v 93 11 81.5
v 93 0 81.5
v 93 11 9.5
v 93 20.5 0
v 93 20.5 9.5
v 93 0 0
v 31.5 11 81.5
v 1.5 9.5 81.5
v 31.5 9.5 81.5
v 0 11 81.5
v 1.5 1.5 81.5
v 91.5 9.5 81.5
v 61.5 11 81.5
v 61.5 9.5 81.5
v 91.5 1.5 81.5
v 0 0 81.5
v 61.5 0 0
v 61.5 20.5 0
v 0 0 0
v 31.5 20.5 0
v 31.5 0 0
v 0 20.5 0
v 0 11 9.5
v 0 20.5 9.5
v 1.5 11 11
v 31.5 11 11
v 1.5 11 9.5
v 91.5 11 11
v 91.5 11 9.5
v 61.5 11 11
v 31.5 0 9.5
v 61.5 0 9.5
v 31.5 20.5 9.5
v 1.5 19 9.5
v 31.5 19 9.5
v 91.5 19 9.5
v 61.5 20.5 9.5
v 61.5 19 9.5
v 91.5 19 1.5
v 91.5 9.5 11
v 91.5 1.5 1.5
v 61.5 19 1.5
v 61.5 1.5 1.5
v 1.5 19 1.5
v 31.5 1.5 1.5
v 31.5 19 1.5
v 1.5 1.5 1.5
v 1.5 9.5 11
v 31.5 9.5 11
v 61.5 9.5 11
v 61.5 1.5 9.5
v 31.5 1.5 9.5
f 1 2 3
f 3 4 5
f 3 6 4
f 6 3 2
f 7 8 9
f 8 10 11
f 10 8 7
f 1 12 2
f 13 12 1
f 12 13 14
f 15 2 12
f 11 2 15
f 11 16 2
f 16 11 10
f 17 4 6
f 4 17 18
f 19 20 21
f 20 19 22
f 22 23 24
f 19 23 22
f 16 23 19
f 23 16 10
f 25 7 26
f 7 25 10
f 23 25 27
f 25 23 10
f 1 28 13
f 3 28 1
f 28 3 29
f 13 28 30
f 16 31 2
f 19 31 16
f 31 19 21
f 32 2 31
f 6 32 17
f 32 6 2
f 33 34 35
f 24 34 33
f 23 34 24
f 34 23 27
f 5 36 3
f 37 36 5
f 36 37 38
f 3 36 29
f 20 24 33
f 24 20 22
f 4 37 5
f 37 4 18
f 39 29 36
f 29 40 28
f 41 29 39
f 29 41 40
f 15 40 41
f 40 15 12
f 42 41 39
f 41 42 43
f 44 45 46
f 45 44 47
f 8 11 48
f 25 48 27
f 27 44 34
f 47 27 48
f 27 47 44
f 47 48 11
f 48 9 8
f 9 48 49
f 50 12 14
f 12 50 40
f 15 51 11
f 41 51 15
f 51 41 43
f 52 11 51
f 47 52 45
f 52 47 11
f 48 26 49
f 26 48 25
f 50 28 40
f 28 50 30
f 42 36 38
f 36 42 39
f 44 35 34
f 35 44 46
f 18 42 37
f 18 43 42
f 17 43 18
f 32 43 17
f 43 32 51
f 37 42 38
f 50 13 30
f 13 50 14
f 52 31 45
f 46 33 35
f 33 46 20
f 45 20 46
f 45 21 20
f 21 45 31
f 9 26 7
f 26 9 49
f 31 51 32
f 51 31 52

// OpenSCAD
length = 90; // 87 is the official size
dia = 8; // 7.0 is the official size
number = 10; // how many pencils to hold

finger = 30; // finger/view hole

wall = 1.5; // wall thickness

difference() {
    union() {
        // main corpus
        cube([length + wall*2, dia + wall*2, dia*number + wall]);
        
        // tray
        translate([0, dia + wall, 0])
            cube([length + wall*2, dia + wall*2, dia + wall]);
    }
    
    // inner corpus
    translate([wall, wall, wall])
        cube([length, dia, dia*number]);
    
    // inner tray
    translate([wall, dia+wall, wall])
        cube([length, dia+wall, dia+wall]);
    
    // view/finger hole
    translate([((length  + wall*2)-finger)/2 ,wall,0])
        cube([finger, dia*2+wall*2, dia*number + wall]);
    
    // finger hole in the back
    translate([((length  + wall*2)-finger)/2 ,0 ,0])
        cube([finger, wall*2, dia + wall]);
}
